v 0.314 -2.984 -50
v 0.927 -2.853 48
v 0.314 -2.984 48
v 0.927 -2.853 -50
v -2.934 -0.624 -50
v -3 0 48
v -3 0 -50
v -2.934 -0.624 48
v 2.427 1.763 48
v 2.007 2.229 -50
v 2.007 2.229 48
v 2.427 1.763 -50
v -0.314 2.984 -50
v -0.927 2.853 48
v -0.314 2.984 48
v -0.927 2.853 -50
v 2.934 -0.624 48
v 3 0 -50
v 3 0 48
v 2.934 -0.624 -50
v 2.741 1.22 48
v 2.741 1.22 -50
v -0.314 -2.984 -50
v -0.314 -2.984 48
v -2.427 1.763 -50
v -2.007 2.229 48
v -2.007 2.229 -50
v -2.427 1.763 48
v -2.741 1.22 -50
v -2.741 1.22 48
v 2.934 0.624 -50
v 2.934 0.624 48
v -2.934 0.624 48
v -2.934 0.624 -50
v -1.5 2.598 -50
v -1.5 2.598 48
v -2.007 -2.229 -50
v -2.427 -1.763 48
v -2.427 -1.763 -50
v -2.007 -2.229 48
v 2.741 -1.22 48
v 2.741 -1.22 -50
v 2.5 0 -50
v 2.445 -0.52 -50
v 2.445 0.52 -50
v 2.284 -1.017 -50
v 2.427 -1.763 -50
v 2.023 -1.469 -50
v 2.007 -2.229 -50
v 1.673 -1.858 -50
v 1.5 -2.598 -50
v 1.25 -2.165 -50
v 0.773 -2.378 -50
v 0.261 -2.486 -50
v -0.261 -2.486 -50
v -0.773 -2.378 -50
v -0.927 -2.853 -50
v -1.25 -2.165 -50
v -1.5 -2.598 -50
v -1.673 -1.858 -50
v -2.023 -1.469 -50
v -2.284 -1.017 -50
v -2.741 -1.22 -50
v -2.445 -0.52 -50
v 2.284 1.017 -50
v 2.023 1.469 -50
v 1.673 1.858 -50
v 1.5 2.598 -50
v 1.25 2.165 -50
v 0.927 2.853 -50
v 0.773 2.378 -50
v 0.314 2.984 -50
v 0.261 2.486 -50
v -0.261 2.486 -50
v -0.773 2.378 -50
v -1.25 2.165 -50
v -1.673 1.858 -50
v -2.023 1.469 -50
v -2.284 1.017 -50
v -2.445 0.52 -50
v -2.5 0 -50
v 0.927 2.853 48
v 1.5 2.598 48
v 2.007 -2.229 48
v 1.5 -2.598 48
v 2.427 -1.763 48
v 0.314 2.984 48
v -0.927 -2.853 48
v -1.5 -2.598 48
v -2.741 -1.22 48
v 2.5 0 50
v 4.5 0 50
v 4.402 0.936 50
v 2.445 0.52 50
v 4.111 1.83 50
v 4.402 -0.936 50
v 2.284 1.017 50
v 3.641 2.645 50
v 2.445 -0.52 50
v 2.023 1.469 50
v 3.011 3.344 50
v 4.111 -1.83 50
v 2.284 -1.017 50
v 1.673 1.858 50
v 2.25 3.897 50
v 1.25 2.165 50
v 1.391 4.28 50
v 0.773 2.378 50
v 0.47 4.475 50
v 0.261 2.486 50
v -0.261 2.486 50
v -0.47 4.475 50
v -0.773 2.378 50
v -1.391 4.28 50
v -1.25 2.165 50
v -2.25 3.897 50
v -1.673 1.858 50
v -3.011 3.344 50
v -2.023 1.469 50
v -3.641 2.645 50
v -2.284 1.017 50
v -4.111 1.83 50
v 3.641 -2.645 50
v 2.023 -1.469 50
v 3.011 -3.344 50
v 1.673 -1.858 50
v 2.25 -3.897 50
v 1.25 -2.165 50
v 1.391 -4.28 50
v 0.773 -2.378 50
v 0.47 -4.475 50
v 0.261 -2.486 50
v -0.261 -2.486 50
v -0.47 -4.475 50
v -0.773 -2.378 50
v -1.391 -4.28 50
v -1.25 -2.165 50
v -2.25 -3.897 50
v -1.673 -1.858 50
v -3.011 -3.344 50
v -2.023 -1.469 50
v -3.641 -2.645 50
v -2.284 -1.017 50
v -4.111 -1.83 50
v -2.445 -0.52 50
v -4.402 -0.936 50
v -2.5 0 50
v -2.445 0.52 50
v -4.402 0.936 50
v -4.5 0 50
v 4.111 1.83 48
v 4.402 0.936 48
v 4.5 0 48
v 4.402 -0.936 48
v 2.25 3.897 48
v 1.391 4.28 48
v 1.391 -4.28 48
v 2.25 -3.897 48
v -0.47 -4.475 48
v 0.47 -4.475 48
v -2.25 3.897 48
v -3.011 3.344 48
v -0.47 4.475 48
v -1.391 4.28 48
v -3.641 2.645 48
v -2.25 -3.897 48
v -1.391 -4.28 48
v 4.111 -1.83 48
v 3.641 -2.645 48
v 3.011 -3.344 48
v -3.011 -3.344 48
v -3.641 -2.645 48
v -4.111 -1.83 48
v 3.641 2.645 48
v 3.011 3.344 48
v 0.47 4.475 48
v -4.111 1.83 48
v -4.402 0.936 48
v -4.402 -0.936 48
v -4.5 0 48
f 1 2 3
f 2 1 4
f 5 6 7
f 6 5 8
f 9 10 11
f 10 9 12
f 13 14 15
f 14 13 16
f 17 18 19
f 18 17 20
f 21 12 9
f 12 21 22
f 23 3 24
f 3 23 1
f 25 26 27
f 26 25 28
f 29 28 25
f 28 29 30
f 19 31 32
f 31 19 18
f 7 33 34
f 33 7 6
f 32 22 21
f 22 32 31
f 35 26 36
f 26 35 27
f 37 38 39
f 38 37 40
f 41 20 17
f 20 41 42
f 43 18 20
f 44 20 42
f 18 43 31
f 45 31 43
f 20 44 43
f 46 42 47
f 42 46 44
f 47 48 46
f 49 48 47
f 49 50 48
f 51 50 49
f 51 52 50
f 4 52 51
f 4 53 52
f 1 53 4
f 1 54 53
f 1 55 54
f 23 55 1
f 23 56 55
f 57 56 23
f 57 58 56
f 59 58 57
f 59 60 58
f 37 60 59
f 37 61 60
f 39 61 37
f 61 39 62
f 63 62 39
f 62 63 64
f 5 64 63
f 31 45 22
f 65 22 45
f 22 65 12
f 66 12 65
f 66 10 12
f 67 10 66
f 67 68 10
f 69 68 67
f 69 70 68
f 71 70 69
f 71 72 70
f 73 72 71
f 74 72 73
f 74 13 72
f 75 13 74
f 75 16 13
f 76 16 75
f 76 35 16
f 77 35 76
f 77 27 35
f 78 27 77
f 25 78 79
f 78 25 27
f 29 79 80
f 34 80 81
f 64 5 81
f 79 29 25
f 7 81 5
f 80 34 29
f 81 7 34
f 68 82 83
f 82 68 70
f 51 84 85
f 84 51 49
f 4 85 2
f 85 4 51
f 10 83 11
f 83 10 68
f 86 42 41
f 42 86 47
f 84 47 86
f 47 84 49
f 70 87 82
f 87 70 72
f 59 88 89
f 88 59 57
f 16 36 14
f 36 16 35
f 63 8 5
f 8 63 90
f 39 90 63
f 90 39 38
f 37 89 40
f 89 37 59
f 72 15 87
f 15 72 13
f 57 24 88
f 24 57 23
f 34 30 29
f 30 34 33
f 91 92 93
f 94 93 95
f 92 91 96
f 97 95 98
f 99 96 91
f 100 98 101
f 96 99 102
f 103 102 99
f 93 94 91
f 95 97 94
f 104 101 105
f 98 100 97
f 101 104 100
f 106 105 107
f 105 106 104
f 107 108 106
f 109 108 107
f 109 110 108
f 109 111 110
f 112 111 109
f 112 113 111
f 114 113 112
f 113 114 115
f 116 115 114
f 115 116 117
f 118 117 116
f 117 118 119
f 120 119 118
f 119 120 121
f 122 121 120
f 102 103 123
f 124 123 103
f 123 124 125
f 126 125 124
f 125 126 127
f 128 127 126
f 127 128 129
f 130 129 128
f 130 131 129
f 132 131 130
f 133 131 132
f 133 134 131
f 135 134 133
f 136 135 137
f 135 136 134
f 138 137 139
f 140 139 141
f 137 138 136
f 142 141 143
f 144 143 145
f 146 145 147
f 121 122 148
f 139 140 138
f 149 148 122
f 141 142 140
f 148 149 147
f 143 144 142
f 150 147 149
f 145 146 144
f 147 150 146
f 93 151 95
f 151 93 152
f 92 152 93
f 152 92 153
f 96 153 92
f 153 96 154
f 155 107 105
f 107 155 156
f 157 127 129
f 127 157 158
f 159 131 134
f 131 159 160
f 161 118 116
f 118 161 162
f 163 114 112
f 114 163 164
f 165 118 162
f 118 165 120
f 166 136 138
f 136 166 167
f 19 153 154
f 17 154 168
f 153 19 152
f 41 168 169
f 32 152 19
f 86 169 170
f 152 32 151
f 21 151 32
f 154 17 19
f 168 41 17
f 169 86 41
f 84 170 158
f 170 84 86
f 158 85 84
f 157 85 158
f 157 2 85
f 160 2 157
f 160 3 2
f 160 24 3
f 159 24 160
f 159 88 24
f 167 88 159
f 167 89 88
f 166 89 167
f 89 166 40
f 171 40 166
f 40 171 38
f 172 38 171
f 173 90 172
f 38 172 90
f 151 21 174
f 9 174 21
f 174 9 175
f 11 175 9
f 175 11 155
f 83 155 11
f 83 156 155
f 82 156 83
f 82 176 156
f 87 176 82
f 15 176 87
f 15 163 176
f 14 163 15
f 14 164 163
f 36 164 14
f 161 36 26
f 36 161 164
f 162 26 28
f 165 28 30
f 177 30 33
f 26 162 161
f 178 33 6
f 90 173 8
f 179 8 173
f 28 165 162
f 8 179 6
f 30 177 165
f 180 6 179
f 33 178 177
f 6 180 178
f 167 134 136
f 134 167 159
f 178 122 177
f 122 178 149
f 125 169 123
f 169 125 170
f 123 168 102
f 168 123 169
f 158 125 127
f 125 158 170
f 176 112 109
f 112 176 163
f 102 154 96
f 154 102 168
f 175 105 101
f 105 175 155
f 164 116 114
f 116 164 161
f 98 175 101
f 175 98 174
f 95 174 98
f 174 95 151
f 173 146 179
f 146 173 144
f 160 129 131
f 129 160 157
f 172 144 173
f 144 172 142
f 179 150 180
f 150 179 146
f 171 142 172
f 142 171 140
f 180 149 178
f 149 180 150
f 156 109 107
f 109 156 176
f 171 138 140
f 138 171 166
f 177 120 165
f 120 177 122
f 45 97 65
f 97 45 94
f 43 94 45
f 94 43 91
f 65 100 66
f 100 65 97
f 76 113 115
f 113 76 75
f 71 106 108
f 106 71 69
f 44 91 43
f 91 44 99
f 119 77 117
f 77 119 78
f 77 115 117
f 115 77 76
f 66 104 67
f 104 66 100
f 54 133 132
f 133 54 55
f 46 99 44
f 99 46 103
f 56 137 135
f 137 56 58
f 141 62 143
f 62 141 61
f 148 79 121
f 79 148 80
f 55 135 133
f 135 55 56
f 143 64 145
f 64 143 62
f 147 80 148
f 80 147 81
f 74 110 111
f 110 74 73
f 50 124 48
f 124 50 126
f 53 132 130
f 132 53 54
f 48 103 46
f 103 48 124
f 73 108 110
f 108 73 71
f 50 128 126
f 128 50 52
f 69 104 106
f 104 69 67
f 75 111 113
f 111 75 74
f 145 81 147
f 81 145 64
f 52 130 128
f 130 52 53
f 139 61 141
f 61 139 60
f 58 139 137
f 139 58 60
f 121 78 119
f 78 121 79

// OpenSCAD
WireTube(100, 5, 6, 9);

module WireTube(length, inner, outer, top) {

    difference() {
        $fn=30;
        union() {
            cylinder(h=length, d=outer, center=true);
            translate([0 ,0, length/2 - 1]) cylinder(h=2, d=top, center=true);
        }
        cylinder(h=length, d=inner, center=true);
    }
    
}
